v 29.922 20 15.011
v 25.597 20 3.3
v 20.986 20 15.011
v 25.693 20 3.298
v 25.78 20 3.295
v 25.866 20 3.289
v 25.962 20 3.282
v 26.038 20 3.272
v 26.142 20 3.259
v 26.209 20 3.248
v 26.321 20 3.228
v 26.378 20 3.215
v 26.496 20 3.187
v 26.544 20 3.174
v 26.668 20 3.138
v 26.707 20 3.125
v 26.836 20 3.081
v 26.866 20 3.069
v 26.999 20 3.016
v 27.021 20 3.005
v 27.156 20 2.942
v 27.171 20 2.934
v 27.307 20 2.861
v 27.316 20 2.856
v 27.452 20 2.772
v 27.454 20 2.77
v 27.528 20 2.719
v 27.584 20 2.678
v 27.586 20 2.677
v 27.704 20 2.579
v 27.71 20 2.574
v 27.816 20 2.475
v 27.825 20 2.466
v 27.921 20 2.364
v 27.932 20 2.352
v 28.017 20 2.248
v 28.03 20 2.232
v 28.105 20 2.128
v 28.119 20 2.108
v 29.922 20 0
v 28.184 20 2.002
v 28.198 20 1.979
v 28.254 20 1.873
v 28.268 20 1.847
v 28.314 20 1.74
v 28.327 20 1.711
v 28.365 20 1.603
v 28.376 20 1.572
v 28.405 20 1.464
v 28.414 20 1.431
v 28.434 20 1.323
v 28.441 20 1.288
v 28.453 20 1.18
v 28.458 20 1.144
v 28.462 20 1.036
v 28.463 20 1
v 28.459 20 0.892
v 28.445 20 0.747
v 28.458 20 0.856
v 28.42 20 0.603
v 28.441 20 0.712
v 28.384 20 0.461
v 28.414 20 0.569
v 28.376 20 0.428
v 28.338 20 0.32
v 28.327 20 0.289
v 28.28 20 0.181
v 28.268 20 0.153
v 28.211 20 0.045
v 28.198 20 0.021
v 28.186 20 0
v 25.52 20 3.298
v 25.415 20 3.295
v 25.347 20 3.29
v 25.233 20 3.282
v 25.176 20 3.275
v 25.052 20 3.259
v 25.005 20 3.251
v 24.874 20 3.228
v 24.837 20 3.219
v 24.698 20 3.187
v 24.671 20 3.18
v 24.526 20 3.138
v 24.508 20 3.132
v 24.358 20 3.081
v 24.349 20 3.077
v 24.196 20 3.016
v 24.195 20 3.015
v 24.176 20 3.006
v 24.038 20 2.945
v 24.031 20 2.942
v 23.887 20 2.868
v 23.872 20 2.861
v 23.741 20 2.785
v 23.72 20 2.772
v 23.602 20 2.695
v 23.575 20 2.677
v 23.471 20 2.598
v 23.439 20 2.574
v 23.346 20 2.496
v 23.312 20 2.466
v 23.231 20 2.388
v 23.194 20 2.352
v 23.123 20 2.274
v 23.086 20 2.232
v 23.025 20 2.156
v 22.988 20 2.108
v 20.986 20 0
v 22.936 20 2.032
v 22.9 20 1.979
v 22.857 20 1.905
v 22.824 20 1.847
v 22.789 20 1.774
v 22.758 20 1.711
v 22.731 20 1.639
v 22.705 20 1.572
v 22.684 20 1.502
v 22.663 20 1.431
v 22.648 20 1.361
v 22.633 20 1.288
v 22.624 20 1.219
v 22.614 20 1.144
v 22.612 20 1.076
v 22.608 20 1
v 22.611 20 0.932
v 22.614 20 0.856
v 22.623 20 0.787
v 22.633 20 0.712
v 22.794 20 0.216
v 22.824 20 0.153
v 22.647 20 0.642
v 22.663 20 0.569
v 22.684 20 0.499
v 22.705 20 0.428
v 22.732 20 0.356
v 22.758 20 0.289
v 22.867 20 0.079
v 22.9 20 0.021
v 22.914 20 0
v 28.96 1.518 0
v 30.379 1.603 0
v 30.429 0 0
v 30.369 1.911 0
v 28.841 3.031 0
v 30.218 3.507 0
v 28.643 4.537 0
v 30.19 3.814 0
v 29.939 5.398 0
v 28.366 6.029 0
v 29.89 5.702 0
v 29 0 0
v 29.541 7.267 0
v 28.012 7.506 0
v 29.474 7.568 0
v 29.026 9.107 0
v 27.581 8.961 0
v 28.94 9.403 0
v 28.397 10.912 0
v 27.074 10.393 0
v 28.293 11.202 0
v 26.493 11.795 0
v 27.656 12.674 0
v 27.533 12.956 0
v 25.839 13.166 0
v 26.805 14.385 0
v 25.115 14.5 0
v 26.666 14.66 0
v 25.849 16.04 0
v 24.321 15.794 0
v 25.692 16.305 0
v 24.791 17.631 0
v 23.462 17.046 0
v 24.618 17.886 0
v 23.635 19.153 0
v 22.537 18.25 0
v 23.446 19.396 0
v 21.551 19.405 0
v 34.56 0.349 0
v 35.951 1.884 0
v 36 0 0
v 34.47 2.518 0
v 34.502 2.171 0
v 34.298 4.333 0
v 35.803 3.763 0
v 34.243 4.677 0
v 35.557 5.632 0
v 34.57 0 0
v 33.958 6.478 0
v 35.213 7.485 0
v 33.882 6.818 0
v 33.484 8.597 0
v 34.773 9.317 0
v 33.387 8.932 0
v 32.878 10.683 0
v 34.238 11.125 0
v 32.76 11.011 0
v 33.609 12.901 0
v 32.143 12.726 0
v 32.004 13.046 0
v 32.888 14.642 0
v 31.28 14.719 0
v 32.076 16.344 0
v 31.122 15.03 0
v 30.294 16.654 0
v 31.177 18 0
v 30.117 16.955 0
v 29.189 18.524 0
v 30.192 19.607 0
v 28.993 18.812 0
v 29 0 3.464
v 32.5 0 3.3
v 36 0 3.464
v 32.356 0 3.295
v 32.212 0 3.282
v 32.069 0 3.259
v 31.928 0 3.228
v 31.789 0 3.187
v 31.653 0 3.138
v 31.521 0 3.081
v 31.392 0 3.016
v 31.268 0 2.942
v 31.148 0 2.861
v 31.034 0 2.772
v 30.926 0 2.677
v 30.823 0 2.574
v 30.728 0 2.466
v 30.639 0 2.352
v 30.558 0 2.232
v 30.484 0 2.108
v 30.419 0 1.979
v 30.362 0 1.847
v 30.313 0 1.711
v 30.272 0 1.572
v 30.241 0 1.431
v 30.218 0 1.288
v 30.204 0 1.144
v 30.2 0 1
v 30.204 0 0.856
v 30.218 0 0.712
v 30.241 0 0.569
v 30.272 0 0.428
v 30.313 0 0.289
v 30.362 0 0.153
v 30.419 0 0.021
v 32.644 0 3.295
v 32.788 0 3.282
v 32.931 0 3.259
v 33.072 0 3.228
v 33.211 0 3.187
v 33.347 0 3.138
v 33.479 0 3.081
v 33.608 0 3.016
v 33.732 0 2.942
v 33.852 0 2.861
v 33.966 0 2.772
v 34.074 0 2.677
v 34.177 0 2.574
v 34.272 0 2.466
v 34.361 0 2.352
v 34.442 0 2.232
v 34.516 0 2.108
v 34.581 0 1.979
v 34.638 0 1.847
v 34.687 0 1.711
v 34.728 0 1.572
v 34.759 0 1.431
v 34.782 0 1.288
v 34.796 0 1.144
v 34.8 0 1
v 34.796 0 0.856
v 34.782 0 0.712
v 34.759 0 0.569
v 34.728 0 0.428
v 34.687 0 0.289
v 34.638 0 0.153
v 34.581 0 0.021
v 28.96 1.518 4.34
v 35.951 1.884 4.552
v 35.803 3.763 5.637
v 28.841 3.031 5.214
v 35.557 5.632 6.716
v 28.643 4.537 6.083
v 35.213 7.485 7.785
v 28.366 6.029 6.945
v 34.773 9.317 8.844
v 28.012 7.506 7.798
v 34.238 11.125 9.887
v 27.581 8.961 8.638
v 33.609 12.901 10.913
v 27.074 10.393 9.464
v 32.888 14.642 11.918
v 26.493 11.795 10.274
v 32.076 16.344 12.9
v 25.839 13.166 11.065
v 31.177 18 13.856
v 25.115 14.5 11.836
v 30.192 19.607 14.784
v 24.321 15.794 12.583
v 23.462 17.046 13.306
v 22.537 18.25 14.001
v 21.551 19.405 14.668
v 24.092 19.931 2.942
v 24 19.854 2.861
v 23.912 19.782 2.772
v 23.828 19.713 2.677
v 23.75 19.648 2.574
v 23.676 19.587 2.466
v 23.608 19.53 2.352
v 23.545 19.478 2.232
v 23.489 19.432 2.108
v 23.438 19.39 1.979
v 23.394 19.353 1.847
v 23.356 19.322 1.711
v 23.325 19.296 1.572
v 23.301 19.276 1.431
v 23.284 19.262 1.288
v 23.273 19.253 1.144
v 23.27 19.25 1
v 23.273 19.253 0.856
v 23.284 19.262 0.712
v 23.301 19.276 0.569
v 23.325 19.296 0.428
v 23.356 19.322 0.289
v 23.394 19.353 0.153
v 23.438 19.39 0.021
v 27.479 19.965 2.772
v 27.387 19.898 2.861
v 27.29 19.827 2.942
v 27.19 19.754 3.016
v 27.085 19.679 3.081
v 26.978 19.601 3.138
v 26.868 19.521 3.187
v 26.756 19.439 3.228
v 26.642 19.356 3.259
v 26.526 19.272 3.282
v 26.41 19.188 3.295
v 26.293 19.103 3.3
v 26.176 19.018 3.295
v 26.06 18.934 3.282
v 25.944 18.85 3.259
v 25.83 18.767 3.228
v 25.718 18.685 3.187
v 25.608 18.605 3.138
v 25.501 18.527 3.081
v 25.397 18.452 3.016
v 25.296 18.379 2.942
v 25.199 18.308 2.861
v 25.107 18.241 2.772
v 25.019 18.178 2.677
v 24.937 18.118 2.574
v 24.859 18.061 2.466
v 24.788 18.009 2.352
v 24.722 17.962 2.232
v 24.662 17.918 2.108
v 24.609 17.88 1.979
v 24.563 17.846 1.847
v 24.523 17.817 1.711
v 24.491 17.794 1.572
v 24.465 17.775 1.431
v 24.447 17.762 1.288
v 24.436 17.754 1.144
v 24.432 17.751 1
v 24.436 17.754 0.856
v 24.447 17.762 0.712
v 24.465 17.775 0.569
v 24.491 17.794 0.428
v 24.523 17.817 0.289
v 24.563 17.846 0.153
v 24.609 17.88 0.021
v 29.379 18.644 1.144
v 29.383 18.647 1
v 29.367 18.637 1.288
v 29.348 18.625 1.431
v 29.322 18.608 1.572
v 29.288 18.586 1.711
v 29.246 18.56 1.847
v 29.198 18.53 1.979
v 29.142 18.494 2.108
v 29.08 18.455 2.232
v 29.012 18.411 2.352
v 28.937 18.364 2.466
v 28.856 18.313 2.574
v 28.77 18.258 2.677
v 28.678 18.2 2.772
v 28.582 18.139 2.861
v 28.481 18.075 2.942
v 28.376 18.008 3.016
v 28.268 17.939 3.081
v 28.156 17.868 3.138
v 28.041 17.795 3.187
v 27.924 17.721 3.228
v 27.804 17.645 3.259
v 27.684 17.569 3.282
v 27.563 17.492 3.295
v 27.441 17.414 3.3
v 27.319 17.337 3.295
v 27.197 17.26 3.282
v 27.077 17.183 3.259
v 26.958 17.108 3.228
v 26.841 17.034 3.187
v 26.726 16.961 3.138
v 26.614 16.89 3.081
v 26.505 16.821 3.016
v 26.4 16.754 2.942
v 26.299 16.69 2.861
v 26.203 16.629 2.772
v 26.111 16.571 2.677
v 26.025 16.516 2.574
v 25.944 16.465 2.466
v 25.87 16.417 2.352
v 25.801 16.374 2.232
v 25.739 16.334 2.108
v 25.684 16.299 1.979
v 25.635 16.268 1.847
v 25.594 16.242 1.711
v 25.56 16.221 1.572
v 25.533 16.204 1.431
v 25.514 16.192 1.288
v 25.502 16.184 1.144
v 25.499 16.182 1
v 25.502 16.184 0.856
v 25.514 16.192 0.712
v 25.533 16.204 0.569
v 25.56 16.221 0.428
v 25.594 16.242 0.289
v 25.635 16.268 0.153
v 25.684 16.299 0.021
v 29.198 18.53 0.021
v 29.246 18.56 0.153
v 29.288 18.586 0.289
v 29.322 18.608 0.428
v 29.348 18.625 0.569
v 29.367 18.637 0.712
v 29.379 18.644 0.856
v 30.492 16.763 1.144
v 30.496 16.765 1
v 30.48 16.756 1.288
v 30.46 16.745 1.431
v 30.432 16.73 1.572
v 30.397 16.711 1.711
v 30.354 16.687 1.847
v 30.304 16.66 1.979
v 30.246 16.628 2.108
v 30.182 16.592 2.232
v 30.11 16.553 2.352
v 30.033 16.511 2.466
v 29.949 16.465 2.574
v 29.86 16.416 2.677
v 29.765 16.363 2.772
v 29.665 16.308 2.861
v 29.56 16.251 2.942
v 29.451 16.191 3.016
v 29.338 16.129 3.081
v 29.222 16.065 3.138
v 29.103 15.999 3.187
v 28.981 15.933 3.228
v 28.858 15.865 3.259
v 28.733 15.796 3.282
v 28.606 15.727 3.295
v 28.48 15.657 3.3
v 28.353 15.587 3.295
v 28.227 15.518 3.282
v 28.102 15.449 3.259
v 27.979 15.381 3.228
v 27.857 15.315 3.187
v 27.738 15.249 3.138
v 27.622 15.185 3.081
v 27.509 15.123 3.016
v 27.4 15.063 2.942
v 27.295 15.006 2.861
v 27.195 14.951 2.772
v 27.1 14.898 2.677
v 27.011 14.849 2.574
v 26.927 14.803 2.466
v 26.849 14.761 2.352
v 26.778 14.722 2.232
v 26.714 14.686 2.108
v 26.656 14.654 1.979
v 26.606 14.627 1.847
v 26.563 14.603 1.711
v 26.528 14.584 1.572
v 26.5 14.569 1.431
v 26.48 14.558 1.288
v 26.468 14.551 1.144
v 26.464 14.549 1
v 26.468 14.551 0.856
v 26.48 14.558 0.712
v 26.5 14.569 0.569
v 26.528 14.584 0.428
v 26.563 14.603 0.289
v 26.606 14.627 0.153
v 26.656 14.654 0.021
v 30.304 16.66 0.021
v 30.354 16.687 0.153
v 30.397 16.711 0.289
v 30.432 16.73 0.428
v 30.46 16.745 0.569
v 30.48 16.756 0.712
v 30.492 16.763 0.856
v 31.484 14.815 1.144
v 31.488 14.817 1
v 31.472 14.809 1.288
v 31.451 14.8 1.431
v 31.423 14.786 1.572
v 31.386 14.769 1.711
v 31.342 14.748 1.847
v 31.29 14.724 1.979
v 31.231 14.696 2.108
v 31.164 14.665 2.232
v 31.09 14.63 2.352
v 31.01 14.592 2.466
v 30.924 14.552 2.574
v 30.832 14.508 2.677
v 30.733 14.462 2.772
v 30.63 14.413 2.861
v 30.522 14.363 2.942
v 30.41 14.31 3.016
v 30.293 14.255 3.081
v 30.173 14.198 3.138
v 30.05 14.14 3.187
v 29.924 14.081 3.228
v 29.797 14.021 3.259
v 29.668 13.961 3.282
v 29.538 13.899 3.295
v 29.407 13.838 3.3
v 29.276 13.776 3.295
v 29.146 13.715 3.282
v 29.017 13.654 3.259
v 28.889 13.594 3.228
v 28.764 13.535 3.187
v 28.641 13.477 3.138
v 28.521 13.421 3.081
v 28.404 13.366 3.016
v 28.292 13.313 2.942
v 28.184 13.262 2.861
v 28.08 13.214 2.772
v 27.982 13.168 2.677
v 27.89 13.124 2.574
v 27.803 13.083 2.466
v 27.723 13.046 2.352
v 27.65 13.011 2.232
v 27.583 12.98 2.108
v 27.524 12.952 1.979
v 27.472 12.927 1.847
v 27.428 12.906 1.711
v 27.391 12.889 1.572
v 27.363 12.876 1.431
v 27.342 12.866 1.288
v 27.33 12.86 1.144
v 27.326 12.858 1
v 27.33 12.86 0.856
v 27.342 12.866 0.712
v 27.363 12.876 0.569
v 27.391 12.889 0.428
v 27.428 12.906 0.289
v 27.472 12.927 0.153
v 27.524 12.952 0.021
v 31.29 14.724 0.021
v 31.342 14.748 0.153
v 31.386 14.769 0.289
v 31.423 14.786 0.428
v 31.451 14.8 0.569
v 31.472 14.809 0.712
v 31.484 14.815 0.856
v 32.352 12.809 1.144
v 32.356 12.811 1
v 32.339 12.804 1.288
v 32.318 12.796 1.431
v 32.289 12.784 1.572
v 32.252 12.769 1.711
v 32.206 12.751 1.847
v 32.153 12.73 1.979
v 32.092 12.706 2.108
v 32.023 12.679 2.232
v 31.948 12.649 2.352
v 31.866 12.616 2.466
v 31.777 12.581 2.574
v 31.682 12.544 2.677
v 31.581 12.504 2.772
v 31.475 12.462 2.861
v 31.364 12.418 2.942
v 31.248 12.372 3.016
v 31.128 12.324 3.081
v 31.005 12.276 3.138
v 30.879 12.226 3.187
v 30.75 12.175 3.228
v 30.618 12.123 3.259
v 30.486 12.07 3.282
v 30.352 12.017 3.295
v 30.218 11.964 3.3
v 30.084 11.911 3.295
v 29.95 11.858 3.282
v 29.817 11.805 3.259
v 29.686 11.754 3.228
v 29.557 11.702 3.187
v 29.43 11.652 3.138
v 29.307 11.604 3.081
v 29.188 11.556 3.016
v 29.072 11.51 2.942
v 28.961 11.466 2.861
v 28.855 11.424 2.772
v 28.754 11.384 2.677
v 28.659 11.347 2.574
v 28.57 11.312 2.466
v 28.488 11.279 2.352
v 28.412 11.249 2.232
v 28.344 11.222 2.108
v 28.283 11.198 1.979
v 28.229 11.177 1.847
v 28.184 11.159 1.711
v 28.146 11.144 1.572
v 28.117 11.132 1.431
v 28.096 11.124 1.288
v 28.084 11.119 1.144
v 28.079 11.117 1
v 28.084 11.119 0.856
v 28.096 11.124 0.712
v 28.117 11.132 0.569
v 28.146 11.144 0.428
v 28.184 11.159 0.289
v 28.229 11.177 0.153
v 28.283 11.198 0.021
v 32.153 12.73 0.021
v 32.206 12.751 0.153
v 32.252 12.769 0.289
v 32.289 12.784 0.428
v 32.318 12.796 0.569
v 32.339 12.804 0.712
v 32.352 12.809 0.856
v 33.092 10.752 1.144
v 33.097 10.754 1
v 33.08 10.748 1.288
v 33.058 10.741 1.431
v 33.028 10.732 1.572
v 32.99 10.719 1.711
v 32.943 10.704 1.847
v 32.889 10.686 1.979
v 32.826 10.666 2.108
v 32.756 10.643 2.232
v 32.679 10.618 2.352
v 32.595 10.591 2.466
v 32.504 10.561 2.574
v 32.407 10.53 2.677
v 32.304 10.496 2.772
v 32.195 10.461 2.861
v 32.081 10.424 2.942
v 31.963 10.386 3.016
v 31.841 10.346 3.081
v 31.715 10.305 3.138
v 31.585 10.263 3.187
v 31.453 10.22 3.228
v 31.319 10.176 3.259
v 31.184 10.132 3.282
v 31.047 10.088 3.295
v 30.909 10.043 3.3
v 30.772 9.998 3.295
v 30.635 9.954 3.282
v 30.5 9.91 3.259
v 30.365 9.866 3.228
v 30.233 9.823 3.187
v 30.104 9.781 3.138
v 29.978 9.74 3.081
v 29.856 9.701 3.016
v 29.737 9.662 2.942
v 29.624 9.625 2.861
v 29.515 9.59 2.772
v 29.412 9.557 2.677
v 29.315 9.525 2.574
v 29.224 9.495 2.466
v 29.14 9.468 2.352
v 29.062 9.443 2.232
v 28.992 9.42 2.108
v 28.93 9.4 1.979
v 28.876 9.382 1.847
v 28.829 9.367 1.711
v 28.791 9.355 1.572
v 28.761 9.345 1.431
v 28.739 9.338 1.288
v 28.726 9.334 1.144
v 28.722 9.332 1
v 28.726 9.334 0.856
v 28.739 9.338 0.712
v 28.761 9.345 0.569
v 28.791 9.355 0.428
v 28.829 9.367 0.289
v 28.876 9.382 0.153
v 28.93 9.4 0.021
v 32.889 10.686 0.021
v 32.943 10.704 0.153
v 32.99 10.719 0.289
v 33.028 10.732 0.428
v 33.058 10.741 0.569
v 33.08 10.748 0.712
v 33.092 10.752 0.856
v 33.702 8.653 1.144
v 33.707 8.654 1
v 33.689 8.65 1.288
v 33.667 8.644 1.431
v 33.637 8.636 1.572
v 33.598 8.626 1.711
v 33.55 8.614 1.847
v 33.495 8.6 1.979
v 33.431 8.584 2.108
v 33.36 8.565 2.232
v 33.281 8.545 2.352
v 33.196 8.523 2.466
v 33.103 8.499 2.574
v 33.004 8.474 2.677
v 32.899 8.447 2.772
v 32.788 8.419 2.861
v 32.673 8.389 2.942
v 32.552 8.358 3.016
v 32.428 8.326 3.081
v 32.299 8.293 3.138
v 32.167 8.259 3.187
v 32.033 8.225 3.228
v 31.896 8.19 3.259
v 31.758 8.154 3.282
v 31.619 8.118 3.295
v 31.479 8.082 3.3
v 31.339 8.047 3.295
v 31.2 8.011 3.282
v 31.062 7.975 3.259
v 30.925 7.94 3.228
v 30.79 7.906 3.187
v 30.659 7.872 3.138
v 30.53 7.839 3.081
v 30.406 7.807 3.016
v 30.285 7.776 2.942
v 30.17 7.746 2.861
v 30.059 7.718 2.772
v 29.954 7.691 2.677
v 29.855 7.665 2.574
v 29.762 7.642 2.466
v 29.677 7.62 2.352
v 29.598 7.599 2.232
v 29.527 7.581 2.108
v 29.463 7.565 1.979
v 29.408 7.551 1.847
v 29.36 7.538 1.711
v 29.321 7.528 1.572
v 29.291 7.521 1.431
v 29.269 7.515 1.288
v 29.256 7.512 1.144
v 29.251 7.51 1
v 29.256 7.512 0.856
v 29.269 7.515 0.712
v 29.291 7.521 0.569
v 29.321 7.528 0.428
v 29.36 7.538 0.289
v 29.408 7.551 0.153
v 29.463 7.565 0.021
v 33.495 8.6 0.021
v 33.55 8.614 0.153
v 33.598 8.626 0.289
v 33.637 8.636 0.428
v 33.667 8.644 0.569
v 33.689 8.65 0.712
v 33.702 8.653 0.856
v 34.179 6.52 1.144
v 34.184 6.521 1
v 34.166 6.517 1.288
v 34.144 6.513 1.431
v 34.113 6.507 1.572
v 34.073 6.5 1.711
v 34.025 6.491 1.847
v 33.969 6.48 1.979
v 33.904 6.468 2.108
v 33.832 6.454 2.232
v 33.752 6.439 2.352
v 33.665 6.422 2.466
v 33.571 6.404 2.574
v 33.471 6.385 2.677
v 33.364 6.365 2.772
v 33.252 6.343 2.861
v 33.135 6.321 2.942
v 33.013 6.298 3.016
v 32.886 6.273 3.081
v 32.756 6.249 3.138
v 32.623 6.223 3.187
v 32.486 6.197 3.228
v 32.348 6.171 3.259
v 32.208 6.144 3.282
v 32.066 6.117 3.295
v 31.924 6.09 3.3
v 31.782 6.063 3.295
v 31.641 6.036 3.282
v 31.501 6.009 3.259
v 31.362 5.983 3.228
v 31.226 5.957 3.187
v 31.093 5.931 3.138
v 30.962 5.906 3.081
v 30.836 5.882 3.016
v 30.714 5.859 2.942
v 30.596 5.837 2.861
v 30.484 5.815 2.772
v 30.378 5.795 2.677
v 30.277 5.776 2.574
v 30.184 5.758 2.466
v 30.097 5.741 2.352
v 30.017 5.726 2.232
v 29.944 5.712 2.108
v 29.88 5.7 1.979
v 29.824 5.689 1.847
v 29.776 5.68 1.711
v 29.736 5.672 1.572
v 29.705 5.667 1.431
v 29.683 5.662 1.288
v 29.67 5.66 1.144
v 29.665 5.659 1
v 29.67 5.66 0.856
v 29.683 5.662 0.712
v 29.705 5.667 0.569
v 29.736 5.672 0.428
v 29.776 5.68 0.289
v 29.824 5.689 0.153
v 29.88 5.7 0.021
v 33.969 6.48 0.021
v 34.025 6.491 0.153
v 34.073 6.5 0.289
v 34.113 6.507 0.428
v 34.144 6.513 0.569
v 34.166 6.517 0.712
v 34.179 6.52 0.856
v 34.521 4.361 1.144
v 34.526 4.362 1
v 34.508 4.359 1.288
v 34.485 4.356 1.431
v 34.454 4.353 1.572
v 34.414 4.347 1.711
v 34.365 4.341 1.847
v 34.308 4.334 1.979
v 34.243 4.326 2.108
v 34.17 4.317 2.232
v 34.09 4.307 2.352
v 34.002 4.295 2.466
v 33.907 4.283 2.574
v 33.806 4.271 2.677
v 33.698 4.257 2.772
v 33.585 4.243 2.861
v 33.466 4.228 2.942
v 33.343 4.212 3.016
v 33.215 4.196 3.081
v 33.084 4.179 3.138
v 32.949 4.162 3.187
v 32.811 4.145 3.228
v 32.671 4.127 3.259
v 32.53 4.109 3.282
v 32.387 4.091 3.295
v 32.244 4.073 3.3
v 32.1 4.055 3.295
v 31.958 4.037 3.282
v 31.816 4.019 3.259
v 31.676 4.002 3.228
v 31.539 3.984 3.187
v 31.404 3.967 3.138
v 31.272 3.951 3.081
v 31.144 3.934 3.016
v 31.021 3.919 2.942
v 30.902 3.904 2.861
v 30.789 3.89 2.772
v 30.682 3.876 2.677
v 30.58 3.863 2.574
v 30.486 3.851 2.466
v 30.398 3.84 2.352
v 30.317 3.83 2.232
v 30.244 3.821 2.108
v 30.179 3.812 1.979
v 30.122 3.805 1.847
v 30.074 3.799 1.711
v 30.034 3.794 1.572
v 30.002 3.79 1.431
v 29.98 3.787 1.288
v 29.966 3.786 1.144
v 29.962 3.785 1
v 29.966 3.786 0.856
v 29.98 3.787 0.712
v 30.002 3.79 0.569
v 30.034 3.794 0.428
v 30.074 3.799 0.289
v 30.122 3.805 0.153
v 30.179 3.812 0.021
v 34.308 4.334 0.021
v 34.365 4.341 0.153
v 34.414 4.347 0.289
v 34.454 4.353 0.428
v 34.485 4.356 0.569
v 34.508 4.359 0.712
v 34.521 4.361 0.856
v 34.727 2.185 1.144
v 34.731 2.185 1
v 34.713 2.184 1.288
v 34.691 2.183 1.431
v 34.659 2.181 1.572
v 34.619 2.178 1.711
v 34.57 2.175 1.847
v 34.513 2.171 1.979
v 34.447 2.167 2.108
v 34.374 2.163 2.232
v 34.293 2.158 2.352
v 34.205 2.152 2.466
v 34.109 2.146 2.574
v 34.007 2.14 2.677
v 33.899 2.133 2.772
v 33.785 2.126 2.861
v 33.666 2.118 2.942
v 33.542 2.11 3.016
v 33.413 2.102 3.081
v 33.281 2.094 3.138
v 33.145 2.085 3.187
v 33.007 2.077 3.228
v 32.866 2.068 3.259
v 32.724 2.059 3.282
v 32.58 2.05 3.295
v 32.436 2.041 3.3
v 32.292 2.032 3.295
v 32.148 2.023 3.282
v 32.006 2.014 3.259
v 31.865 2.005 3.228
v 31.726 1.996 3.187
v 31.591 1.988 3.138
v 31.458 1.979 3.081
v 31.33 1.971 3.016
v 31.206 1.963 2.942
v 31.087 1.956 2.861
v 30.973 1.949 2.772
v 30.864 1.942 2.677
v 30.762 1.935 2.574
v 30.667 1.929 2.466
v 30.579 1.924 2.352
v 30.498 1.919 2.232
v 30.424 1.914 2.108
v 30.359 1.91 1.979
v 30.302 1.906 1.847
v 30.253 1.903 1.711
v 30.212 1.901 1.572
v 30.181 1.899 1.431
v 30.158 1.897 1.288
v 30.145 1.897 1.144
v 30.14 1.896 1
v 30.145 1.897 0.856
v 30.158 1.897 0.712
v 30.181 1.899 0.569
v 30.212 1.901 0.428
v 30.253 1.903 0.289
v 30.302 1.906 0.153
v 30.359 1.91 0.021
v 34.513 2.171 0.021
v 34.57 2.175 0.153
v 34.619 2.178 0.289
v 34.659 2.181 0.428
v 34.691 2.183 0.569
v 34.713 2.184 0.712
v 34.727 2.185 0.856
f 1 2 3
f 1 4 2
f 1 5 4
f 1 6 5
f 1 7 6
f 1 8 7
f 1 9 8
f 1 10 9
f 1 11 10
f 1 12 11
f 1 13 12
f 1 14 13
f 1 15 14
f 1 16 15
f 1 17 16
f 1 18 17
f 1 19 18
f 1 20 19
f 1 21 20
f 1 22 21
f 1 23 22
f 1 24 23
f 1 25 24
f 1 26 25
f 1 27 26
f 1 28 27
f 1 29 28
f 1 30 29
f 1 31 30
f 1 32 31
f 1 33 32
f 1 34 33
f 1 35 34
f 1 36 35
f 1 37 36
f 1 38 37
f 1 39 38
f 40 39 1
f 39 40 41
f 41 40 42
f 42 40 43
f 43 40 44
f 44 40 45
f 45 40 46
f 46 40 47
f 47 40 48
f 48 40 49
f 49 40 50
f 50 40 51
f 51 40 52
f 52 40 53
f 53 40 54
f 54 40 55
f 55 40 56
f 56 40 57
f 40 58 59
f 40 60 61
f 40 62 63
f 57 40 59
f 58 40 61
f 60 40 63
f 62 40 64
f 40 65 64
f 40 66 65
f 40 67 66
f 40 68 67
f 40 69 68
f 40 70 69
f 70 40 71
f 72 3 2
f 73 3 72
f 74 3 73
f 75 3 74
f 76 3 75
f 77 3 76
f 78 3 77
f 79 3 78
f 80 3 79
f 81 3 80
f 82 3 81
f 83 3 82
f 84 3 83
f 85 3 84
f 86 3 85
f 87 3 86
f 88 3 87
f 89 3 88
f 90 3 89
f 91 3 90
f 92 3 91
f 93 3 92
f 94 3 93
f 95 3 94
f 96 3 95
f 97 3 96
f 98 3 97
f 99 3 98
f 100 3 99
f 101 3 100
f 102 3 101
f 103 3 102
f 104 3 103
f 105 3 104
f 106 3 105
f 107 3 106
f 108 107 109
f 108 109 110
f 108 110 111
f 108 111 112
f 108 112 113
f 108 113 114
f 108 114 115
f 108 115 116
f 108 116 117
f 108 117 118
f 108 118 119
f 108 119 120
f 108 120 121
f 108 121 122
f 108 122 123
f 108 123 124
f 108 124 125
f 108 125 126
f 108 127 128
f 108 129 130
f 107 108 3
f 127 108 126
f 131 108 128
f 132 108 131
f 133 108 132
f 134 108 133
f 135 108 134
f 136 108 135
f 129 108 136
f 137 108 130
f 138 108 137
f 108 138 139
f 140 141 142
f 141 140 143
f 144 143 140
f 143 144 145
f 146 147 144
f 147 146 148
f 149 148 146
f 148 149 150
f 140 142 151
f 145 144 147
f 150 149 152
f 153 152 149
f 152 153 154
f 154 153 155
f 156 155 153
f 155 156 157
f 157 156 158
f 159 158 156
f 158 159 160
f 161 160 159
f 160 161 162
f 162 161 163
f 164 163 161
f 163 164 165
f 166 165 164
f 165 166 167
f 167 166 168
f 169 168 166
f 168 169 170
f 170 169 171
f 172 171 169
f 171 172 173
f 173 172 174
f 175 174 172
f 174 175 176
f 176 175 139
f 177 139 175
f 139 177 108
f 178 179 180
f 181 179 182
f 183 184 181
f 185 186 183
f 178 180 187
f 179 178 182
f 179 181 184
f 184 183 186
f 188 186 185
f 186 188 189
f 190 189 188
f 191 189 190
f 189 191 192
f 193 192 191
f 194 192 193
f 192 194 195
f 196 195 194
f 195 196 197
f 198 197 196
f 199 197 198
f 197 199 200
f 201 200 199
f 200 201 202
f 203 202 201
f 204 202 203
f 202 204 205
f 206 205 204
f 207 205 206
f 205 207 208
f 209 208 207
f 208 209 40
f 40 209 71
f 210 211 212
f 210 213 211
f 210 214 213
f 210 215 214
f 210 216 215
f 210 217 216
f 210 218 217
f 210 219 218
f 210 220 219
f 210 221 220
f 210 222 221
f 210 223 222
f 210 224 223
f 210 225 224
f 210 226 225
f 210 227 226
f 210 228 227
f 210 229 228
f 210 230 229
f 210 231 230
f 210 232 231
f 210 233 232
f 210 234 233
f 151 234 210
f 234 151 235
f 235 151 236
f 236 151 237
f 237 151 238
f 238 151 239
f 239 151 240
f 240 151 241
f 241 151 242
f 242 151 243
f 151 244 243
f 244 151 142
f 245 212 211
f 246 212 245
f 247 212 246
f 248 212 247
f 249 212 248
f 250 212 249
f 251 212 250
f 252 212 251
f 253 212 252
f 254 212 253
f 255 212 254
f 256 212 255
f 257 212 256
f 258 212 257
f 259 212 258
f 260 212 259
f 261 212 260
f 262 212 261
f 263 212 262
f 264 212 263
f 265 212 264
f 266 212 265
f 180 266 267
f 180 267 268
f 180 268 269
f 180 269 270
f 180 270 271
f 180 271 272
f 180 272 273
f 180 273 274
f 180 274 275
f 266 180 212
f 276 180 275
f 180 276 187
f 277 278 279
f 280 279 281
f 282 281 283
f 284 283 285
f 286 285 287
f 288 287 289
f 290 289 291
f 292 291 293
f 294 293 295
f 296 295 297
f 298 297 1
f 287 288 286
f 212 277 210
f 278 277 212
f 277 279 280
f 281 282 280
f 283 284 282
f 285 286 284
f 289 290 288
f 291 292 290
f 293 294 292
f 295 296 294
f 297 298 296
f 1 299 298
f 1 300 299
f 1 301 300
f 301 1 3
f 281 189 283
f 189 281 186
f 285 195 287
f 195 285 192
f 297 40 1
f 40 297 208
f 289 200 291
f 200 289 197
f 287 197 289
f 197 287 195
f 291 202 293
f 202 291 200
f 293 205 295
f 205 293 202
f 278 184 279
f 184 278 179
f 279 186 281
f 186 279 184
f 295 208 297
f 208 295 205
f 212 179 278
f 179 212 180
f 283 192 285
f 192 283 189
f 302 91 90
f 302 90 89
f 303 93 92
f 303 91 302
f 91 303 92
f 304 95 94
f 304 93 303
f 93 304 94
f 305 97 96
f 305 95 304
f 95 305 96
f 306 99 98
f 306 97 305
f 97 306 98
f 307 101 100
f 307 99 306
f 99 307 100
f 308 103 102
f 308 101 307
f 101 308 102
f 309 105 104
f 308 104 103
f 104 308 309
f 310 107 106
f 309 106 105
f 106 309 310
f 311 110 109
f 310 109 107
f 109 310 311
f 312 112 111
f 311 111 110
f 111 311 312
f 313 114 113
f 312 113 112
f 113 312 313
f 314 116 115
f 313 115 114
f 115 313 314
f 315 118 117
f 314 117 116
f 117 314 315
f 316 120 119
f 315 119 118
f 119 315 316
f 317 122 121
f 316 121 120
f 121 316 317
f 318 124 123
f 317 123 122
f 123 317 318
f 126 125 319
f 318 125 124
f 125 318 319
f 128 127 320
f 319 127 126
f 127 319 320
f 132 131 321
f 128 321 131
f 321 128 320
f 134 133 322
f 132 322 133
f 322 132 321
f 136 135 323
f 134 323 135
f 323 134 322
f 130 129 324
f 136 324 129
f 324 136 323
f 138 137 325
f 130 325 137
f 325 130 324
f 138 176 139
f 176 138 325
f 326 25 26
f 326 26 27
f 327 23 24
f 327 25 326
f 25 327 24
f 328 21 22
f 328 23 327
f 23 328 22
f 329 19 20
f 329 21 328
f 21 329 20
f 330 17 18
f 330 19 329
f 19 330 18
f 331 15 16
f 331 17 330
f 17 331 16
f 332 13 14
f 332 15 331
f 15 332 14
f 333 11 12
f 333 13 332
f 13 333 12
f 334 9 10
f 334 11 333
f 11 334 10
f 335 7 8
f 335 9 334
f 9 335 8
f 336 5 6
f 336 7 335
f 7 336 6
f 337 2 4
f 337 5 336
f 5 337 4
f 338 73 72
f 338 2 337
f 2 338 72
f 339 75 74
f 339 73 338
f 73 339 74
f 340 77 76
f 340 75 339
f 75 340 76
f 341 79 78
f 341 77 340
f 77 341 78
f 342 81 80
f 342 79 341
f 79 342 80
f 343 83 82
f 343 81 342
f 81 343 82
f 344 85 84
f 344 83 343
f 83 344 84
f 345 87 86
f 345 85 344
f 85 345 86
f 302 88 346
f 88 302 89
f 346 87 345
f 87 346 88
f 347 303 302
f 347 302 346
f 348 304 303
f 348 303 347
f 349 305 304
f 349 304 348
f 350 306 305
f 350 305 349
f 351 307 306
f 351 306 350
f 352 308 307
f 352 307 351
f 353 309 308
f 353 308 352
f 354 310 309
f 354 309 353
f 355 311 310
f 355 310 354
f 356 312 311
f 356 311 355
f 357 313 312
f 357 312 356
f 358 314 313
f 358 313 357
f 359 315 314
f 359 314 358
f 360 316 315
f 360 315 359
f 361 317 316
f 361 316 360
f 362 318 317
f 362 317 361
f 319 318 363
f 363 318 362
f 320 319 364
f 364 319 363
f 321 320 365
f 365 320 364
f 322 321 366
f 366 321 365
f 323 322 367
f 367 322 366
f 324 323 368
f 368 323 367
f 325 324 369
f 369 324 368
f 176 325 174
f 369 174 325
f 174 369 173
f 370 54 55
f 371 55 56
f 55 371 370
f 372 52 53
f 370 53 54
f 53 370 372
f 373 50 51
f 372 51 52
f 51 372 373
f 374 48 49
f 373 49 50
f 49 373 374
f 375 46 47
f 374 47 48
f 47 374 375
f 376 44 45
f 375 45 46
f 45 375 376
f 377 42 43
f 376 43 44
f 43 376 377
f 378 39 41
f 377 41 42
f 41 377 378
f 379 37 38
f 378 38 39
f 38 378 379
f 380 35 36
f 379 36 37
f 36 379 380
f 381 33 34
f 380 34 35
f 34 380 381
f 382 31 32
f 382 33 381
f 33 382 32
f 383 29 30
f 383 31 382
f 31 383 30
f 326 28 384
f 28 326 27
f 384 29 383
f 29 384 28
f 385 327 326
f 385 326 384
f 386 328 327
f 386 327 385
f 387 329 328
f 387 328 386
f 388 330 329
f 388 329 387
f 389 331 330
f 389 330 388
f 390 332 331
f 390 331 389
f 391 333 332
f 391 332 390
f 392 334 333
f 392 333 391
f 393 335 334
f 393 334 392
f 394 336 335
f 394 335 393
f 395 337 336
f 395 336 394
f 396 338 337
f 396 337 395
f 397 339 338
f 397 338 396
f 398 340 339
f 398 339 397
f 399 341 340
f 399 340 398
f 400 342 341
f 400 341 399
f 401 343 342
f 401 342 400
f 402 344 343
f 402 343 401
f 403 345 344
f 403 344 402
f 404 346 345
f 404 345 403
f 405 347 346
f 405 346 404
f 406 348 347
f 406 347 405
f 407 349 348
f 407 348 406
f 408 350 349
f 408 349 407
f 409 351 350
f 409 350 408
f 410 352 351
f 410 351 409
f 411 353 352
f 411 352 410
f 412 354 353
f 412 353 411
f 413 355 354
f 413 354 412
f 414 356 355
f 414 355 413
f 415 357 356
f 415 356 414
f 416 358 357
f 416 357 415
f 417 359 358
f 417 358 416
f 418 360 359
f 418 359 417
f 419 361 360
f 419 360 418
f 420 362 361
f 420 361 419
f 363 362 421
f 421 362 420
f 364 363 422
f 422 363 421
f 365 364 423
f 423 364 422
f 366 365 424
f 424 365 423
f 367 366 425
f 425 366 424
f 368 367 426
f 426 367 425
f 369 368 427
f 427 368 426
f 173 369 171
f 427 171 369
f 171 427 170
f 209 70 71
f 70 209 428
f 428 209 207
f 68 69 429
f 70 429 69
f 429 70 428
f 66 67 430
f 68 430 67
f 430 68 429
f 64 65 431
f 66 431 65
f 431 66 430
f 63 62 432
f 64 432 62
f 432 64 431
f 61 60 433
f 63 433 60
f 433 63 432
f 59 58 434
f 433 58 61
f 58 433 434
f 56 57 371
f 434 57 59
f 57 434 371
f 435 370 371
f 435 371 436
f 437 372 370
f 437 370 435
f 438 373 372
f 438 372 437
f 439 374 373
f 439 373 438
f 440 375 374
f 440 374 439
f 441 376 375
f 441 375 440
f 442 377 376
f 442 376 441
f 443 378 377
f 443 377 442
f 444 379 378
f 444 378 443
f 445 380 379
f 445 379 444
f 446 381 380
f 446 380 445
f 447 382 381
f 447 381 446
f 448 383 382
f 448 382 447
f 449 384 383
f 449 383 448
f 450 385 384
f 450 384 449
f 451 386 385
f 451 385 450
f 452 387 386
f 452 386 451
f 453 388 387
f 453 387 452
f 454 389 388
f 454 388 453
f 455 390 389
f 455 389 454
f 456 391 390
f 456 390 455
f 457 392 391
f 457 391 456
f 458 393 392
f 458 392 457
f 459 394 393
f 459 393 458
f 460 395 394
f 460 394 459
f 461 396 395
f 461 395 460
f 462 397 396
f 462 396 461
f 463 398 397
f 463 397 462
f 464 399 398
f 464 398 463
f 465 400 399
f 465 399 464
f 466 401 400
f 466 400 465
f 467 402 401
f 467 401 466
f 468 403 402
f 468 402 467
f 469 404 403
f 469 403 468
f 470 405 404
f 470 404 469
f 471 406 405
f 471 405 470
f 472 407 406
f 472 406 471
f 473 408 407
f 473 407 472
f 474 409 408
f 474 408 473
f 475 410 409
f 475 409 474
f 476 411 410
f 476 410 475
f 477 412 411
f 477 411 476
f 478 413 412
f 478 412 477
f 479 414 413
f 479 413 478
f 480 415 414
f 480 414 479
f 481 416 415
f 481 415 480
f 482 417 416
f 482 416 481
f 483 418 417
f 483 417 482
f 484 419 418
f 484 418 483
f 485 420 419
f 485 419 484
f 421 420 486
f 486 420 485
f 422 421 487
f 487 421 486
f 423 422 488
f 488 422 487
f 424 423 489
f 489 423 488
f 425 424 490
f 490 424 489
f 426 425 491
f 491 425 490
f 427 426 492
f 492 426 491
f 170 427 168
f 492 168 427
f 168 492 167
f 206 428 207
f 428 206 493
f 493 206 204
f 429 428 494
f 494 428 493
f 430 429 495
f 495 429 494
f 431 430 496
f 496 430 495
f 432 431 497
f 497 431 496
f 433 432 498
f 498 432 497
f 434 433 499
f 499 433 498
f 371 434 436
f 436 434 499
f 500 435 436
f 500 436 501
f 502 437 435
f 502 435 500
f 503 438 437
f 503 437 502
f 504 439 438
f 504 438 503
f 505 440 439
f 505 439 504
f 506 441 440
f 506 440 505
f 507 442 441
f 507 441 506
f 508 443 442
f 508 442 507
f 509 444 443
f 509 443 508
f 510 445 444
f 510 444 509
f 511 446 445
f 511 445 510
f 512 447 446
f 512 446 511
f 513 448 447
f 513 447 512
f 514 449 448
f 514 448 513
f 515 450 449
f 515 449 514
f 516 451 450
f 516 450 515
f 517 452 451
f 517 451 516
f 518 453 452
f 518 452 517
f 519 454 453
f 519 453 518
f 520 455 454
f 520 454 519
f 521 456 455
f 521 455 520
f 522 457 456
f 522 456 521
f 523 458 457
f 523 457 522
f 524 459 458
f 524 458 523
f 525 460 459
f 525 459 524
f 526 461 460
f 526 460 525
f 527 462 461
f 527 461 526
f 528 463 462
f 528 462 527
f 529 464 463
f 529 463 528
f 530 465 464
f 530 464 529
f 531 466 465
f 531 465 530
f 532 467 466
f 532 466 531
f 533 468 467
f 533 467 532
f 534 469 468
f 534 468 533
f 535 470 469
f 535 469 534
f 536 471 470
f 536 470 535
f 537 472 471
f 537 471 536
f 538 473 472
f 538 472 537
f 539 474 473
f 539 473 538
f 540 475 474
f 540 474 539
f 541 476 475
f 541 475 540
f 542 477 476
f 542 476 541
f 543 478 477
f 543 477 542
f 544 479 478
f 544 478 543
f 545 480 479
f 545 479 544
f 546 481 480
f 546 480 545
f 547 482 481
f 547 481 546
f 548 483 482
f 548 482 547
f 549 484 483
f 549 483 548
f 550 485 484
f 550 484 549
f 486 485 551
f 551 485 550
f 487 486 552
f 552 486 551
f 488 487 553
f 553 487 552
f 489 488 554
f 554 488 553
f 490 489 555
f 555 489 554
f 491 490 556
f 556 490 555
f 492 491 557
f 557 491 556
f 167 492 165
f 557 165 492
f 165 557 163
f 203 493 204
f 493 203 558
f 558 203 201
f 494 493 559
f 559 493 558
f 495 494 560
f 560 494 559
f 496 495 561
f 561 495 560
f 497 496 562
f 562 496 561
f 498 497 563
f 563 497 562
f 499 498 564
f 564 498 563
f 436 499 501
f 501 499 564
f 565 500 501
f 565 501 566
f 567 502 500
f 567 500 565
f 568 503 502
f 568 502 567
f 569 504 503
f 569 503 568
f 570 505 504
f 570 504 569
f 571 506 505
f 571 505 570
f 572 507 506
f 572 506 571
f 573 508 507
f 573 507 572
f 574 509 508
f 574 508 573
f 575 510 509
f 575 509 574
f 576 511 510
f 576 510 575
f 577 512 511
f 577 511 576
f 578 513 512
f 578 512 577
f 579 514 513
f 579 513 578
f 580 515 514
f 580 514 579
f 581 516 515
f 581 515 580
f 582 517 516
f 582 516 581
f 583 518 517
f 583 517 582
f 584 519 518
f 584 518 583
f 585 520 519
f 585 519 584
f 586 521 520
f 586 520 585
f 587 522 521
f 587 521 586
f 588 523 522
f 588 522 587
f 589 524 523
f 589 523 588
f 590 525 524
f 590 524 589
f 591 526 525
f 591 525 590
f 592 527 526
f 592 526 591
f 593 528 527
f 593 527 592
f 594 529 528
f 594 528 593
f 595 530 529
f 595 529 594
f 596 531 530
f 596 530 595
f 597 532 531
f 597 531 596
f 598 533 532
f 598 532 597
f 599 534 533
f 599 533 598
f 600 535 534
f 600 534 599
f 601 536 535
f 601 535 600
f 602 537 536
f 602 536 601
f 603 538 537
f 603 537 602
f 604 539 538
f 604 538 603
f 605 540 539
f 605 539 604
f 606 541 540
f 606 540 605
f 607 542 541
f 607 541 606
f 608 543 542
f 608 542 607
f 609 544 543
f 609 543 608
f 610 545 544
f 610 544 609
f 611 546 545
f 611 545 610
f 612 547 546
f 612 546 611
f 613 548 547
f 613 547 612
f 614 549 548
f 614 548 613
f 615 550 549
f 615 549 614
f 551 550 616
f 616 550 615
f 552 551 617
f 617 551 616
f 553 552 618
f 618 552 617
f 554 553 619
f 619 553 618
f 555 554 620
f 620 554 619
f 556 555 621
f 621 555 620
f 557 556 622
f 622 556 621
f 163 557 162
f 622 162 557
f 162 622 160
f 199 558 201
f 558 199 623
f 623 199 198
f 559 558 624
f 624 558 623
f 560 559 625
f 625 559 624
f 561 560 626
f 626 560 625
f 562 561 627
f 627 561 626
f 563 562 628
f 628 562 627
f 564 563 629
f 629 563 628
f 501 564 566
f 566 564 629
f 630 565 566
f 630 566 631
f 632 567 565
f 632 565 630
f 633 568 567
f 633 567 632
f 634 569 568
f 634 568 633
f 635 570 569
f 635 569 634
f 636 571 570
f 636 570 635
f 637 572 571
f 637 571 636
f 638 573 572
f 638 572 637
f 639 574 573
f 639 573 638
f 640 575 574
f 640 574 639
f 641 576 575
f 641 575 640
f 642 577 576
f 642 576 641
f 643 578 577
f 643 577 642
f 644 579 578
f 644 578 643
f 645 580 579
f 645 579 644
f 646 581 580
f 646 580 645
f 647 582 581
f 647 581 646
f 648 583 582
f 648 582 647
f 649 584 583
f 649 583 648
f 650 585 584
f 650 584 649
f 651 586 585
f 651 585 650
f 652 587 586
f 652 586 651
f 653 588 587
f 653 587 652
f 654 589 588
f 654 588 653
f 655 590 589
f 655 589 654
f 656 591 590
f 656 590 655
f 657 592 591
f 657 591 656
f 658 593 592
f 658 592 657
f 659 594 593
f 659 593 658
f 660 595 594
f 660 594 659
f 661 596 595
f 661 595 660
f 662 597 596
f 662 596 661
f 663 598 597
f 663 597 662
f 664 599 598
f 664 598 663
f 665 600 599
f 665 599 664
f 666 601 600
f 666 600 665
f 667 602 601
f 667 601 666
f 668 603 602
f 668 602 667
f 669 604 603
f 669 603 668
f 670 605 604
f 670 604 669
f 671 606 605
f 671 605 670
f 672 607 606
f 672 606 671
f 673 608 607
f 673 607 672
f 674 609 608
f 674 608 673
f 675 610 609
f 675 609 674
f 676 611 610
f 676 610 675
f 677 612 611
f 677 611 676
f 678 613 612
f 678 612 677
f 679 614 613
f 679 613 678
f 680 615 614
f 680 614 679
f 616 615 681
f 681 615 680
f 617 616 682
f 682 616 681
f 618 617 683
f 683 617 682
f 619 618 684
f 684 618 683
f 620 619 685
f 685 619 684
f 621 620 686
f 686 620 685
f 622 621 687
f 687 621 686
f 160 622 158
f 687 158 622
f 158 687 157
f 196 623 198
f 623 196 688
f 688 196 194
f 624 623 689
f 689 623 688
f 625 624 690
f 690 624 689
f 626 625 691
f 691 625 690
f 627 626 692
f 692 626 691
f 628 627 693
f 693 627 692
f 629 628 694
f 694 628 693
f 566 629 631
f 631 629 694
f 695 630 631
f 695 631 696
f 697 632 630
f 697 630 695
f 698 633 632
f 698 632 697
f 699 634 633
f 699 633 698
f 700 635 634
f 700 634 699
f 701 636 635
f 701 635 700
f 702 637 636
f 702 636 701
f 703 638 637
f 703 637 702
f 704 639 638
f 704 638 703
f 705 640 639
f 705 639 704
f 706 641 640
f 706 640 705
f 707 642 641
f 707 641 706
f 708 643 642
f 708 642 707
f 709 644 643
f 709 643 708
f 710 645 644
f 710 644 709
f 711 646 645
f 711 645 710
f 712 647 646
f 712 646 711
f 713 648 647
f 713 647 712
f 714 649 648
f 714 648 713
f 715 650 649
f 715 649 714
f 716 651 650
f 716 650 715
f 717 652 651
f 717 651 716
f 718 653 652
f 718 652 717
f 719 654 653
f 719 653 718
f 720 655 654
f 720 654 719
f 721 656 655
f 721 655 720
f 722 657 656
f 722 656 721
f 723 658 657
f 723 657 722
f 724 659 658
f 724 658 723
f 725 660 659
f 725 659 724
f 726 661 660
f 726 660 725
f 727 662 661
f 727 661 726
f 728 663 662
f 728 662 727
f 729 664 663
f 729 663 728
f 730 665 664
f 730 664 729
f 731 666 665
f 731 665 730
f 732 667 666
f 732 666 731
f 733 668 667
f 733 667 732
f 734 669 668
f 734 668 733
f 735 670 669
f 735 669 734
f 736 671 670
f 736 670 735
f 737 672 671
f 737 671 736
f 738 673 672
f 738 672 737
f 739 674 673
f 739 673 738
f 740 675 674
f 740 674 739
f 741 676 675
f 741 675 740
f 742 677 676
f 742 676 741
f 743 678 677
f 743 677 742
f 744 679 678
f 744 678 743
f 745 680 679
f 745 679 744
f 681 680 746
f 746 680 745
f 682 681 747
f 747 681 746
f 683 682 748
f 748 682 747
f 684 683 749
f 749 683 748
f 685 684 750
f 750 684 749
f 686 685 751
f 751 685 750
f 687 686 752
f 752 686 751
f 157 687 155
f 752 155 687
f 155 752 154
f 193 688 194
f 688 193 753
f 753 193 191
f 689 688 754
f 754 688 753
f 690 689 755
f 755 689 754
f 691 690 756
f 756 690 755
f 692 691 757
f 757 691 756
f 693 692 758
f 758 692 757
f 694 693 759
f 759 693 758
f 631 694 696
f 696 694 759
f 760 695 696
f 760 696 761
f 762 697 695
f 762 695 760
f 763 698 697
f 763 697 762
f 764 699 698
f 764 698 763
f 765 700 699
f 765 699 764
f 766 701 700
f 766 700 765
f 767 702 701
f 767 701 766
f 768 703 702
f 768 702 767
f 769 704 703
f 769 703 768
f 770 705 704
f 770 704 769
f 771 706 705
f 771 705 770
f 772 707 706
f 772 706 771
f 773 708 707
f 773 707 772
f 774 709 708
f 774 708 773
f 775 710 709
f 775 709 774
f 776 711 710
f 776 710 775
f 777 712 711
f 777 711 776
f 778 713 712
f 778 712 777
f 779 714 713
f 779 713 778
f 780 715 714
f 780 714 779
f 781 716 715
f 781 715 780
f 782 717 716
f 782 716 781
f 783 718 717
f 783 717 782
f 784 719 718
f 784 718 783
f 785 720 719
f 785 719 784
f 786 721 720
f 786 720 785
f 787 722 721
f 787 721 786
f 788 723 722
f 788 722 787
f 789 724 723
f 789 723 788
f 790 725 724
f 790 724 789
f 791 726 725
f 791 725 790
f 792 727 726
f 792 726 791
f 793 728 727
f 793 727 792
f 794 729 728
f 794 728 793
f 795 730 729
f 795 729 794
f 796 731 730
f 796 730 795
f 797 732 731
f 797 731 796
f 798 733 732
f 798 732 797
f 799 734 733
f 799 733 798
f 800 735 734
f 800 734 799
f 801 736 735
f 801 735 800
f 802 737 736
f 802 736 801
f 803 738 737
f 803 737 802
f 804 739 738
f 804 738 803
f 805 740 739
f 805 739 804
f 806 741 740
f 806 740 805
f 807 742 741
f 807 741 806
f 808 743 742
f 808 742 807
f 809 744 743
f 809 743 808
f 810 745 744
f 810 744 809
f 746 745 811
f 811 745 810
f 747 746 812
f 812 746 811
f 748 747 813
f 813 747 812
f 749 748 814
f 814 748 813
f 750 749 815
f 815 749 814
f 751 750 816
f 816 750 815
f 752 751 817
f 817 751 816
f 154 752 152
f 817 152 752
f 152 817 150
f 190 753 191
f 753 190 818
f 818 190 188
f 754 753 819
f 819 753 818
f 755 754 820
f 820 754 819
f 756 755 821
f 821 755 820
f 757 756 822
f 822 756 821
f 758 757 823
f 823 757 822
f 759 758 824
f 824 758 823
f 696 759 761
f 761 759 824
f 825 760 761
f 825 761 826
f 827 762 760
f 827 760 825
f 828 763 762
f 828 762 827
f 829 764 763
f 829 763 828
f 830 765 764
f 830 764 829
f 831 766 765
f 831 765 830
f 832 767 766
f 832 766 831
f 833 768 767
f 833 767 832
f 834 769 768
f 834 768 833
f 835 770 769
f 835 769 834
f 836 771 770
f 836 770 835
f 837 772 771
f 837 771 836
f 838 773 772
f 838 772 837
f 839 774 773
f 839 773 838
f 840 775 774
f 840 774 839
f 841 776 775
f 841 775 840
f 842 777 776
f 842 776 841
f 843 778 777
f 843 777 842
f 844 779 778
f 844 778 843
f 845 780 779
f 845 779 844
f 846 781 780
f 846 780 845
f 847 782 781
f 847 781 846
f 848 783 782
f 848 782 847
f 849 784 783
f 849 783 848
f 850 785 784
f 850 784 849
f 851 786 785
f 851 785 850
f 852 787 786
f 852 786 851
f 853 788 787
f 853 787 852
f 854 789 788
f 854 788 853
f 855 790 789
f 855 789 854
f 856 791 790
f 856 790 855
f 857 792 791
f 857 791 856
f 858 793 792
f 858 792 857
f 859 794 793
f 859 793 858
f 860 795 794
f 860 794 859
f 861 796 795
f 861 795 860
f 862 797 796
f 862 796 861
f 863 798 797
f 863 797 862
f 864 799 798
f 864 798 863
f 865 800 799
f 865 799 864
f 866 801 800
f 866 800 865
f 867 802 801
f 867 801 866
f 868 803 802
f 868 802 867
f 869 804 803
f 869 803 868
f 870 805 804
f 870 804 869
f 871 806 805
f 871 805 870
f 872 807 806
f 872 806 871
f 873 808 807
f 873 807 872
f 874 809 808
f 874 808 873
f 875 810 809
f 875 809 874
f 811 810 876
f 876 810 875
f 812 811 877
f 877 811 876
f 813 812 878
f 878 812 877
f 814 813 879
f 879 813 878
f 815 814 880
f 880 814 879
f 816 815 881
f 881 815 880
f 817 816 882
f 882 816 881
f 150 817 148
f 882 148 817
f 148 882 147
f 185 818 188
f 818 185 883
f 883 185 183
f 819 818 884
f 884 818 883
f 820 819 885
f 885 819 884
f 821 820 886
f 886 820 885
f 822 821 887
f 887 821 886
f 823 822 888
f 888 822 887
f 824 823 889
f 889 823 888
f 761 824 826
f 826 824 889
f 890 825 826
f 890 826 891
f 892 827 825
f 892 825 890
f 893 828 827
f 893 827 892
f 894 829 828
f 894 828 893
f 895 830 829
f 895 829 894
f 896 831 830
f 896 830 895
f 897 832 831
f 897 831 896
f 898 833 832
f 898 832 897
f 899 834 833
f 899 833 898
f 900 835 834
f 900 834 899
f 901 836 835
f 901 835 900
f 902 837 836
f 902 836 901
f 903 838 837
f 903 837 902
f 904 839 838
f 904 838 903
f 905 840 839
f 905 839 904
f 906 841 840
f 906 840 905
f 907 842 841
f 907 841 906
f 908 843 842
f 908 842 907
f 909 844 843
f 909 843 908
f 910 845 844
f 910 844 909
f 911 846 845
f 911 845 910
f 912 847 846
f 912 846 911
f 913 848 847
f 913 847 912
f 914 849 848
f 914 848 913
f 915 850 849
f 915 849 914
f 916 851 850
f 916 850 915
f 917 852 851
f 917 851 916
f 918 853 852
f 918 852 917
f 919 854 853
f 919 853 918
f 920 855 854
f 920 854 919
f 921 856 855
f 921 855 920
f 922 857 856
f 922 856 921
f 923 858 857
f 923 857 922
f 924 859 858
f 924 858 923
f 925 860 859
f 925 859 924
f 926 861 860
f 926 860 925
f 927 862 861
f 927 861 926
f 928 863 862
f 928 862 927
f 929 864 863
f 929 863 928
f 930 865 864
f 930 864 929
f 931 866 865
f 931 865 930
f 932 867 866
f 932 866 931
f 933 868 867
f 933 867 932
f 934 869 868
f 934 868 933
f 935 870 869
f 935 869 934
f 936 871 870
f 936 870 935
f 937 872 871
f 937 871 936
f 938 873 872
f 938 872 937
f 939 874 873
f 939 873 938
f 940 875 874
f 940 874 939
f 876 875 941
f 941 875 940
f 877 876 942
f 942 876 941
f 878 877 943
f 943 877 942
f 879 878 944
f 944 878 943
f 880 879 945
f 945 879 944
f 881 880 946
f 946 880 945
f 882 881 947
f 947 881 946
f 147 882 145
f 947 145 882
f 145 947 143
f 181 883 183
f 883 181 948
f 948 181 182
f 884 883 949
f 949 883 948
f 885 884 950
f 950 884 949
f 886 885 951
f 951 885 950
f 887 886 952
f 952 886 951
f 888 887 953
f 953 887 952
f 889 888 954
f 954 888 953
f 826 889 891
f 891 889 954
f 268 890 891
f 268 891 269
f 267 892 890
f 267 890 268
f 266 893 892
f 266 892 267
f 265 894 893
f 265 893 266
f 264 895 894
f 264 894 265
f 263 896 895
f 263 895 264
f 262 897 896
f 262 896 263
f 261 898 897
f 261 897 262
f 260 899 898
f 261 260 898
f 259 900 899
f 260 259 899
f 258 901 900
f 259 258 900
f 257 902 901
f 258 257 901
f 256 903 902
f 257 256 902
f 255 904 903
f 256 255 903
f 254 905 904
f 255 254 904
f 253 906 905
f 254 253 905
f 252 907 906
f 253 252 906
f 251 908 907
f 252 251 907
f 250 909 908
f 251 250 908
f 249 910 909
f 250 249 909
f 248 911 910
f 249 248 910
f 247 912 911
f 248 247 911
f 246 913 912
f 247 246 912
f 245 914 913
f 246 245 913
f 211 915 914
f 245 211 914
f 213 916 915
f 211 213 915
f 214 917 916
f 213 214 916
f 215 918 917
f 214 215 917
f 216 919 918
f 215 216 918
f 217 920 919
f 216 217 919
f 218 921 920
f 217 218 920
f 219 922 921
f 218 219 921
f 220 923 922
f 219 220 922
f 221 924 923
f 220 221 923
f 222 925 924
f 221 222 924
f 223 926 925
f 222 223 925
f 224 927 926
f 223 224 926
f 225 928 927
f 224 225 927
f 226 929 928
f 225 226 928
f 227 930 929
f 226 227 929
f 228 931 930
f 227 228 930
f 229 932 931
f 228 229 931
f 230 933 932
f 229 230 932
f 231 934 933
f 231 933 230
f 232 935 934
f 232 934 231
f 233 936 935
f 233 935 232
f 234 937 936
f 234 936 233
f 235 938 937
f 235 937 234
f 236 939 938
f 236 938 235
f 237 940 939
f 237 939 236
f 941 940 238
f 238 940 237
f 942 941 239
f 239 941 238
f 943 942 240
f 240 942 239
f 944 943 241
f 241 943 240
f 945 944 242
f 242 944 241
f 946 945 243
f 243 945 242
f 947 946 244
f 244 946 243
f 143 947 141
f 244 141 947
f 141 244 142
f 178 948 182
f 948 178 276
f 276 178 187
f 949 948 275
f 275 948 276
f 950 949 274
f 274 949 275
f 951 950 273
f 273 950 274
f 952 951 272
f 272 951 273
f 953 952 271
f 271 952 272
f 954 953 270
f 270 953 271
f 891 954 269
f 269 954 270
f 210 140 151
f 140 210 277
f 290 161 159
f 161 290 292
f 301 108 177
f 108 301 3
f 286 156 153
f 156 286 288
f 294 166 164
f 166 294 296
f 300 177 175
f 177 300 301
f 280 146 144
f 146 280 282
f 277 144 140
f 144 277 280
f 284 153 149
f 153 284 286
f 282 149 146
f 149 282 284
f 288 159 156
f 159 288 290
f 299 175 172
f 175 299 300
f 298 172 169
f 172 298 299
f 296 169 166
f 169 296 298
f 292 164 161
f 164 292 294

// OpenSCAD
length = 20;
depth = 20;
height = 5;




module fin() {
	difference() {
		translate([20,0,0]) cube([40,20,18]);
		translate([20,-6,0]) rotate([30,0,0]) cube([50,50,50]);
	}
}

module maskingcylinder() {
	translate([0,0,-1])
	difference() {
		cylinder(h=20, r=200/2, $fn=120);
		cylinder(h=22, r=72/2, $fn=120);
	}
}

module ring() {
	rotate_extrude(convexity = 10, $fn = 100)
	translate([65/2, 1, 0])
	circle(r = 2.3, $fn = 100);
}

difference() {
	fin();
	ring();
	translate([0,0,-1]) cylinder(h=22, r=58/2, $fn=120);
	maskingcylinder();
}
